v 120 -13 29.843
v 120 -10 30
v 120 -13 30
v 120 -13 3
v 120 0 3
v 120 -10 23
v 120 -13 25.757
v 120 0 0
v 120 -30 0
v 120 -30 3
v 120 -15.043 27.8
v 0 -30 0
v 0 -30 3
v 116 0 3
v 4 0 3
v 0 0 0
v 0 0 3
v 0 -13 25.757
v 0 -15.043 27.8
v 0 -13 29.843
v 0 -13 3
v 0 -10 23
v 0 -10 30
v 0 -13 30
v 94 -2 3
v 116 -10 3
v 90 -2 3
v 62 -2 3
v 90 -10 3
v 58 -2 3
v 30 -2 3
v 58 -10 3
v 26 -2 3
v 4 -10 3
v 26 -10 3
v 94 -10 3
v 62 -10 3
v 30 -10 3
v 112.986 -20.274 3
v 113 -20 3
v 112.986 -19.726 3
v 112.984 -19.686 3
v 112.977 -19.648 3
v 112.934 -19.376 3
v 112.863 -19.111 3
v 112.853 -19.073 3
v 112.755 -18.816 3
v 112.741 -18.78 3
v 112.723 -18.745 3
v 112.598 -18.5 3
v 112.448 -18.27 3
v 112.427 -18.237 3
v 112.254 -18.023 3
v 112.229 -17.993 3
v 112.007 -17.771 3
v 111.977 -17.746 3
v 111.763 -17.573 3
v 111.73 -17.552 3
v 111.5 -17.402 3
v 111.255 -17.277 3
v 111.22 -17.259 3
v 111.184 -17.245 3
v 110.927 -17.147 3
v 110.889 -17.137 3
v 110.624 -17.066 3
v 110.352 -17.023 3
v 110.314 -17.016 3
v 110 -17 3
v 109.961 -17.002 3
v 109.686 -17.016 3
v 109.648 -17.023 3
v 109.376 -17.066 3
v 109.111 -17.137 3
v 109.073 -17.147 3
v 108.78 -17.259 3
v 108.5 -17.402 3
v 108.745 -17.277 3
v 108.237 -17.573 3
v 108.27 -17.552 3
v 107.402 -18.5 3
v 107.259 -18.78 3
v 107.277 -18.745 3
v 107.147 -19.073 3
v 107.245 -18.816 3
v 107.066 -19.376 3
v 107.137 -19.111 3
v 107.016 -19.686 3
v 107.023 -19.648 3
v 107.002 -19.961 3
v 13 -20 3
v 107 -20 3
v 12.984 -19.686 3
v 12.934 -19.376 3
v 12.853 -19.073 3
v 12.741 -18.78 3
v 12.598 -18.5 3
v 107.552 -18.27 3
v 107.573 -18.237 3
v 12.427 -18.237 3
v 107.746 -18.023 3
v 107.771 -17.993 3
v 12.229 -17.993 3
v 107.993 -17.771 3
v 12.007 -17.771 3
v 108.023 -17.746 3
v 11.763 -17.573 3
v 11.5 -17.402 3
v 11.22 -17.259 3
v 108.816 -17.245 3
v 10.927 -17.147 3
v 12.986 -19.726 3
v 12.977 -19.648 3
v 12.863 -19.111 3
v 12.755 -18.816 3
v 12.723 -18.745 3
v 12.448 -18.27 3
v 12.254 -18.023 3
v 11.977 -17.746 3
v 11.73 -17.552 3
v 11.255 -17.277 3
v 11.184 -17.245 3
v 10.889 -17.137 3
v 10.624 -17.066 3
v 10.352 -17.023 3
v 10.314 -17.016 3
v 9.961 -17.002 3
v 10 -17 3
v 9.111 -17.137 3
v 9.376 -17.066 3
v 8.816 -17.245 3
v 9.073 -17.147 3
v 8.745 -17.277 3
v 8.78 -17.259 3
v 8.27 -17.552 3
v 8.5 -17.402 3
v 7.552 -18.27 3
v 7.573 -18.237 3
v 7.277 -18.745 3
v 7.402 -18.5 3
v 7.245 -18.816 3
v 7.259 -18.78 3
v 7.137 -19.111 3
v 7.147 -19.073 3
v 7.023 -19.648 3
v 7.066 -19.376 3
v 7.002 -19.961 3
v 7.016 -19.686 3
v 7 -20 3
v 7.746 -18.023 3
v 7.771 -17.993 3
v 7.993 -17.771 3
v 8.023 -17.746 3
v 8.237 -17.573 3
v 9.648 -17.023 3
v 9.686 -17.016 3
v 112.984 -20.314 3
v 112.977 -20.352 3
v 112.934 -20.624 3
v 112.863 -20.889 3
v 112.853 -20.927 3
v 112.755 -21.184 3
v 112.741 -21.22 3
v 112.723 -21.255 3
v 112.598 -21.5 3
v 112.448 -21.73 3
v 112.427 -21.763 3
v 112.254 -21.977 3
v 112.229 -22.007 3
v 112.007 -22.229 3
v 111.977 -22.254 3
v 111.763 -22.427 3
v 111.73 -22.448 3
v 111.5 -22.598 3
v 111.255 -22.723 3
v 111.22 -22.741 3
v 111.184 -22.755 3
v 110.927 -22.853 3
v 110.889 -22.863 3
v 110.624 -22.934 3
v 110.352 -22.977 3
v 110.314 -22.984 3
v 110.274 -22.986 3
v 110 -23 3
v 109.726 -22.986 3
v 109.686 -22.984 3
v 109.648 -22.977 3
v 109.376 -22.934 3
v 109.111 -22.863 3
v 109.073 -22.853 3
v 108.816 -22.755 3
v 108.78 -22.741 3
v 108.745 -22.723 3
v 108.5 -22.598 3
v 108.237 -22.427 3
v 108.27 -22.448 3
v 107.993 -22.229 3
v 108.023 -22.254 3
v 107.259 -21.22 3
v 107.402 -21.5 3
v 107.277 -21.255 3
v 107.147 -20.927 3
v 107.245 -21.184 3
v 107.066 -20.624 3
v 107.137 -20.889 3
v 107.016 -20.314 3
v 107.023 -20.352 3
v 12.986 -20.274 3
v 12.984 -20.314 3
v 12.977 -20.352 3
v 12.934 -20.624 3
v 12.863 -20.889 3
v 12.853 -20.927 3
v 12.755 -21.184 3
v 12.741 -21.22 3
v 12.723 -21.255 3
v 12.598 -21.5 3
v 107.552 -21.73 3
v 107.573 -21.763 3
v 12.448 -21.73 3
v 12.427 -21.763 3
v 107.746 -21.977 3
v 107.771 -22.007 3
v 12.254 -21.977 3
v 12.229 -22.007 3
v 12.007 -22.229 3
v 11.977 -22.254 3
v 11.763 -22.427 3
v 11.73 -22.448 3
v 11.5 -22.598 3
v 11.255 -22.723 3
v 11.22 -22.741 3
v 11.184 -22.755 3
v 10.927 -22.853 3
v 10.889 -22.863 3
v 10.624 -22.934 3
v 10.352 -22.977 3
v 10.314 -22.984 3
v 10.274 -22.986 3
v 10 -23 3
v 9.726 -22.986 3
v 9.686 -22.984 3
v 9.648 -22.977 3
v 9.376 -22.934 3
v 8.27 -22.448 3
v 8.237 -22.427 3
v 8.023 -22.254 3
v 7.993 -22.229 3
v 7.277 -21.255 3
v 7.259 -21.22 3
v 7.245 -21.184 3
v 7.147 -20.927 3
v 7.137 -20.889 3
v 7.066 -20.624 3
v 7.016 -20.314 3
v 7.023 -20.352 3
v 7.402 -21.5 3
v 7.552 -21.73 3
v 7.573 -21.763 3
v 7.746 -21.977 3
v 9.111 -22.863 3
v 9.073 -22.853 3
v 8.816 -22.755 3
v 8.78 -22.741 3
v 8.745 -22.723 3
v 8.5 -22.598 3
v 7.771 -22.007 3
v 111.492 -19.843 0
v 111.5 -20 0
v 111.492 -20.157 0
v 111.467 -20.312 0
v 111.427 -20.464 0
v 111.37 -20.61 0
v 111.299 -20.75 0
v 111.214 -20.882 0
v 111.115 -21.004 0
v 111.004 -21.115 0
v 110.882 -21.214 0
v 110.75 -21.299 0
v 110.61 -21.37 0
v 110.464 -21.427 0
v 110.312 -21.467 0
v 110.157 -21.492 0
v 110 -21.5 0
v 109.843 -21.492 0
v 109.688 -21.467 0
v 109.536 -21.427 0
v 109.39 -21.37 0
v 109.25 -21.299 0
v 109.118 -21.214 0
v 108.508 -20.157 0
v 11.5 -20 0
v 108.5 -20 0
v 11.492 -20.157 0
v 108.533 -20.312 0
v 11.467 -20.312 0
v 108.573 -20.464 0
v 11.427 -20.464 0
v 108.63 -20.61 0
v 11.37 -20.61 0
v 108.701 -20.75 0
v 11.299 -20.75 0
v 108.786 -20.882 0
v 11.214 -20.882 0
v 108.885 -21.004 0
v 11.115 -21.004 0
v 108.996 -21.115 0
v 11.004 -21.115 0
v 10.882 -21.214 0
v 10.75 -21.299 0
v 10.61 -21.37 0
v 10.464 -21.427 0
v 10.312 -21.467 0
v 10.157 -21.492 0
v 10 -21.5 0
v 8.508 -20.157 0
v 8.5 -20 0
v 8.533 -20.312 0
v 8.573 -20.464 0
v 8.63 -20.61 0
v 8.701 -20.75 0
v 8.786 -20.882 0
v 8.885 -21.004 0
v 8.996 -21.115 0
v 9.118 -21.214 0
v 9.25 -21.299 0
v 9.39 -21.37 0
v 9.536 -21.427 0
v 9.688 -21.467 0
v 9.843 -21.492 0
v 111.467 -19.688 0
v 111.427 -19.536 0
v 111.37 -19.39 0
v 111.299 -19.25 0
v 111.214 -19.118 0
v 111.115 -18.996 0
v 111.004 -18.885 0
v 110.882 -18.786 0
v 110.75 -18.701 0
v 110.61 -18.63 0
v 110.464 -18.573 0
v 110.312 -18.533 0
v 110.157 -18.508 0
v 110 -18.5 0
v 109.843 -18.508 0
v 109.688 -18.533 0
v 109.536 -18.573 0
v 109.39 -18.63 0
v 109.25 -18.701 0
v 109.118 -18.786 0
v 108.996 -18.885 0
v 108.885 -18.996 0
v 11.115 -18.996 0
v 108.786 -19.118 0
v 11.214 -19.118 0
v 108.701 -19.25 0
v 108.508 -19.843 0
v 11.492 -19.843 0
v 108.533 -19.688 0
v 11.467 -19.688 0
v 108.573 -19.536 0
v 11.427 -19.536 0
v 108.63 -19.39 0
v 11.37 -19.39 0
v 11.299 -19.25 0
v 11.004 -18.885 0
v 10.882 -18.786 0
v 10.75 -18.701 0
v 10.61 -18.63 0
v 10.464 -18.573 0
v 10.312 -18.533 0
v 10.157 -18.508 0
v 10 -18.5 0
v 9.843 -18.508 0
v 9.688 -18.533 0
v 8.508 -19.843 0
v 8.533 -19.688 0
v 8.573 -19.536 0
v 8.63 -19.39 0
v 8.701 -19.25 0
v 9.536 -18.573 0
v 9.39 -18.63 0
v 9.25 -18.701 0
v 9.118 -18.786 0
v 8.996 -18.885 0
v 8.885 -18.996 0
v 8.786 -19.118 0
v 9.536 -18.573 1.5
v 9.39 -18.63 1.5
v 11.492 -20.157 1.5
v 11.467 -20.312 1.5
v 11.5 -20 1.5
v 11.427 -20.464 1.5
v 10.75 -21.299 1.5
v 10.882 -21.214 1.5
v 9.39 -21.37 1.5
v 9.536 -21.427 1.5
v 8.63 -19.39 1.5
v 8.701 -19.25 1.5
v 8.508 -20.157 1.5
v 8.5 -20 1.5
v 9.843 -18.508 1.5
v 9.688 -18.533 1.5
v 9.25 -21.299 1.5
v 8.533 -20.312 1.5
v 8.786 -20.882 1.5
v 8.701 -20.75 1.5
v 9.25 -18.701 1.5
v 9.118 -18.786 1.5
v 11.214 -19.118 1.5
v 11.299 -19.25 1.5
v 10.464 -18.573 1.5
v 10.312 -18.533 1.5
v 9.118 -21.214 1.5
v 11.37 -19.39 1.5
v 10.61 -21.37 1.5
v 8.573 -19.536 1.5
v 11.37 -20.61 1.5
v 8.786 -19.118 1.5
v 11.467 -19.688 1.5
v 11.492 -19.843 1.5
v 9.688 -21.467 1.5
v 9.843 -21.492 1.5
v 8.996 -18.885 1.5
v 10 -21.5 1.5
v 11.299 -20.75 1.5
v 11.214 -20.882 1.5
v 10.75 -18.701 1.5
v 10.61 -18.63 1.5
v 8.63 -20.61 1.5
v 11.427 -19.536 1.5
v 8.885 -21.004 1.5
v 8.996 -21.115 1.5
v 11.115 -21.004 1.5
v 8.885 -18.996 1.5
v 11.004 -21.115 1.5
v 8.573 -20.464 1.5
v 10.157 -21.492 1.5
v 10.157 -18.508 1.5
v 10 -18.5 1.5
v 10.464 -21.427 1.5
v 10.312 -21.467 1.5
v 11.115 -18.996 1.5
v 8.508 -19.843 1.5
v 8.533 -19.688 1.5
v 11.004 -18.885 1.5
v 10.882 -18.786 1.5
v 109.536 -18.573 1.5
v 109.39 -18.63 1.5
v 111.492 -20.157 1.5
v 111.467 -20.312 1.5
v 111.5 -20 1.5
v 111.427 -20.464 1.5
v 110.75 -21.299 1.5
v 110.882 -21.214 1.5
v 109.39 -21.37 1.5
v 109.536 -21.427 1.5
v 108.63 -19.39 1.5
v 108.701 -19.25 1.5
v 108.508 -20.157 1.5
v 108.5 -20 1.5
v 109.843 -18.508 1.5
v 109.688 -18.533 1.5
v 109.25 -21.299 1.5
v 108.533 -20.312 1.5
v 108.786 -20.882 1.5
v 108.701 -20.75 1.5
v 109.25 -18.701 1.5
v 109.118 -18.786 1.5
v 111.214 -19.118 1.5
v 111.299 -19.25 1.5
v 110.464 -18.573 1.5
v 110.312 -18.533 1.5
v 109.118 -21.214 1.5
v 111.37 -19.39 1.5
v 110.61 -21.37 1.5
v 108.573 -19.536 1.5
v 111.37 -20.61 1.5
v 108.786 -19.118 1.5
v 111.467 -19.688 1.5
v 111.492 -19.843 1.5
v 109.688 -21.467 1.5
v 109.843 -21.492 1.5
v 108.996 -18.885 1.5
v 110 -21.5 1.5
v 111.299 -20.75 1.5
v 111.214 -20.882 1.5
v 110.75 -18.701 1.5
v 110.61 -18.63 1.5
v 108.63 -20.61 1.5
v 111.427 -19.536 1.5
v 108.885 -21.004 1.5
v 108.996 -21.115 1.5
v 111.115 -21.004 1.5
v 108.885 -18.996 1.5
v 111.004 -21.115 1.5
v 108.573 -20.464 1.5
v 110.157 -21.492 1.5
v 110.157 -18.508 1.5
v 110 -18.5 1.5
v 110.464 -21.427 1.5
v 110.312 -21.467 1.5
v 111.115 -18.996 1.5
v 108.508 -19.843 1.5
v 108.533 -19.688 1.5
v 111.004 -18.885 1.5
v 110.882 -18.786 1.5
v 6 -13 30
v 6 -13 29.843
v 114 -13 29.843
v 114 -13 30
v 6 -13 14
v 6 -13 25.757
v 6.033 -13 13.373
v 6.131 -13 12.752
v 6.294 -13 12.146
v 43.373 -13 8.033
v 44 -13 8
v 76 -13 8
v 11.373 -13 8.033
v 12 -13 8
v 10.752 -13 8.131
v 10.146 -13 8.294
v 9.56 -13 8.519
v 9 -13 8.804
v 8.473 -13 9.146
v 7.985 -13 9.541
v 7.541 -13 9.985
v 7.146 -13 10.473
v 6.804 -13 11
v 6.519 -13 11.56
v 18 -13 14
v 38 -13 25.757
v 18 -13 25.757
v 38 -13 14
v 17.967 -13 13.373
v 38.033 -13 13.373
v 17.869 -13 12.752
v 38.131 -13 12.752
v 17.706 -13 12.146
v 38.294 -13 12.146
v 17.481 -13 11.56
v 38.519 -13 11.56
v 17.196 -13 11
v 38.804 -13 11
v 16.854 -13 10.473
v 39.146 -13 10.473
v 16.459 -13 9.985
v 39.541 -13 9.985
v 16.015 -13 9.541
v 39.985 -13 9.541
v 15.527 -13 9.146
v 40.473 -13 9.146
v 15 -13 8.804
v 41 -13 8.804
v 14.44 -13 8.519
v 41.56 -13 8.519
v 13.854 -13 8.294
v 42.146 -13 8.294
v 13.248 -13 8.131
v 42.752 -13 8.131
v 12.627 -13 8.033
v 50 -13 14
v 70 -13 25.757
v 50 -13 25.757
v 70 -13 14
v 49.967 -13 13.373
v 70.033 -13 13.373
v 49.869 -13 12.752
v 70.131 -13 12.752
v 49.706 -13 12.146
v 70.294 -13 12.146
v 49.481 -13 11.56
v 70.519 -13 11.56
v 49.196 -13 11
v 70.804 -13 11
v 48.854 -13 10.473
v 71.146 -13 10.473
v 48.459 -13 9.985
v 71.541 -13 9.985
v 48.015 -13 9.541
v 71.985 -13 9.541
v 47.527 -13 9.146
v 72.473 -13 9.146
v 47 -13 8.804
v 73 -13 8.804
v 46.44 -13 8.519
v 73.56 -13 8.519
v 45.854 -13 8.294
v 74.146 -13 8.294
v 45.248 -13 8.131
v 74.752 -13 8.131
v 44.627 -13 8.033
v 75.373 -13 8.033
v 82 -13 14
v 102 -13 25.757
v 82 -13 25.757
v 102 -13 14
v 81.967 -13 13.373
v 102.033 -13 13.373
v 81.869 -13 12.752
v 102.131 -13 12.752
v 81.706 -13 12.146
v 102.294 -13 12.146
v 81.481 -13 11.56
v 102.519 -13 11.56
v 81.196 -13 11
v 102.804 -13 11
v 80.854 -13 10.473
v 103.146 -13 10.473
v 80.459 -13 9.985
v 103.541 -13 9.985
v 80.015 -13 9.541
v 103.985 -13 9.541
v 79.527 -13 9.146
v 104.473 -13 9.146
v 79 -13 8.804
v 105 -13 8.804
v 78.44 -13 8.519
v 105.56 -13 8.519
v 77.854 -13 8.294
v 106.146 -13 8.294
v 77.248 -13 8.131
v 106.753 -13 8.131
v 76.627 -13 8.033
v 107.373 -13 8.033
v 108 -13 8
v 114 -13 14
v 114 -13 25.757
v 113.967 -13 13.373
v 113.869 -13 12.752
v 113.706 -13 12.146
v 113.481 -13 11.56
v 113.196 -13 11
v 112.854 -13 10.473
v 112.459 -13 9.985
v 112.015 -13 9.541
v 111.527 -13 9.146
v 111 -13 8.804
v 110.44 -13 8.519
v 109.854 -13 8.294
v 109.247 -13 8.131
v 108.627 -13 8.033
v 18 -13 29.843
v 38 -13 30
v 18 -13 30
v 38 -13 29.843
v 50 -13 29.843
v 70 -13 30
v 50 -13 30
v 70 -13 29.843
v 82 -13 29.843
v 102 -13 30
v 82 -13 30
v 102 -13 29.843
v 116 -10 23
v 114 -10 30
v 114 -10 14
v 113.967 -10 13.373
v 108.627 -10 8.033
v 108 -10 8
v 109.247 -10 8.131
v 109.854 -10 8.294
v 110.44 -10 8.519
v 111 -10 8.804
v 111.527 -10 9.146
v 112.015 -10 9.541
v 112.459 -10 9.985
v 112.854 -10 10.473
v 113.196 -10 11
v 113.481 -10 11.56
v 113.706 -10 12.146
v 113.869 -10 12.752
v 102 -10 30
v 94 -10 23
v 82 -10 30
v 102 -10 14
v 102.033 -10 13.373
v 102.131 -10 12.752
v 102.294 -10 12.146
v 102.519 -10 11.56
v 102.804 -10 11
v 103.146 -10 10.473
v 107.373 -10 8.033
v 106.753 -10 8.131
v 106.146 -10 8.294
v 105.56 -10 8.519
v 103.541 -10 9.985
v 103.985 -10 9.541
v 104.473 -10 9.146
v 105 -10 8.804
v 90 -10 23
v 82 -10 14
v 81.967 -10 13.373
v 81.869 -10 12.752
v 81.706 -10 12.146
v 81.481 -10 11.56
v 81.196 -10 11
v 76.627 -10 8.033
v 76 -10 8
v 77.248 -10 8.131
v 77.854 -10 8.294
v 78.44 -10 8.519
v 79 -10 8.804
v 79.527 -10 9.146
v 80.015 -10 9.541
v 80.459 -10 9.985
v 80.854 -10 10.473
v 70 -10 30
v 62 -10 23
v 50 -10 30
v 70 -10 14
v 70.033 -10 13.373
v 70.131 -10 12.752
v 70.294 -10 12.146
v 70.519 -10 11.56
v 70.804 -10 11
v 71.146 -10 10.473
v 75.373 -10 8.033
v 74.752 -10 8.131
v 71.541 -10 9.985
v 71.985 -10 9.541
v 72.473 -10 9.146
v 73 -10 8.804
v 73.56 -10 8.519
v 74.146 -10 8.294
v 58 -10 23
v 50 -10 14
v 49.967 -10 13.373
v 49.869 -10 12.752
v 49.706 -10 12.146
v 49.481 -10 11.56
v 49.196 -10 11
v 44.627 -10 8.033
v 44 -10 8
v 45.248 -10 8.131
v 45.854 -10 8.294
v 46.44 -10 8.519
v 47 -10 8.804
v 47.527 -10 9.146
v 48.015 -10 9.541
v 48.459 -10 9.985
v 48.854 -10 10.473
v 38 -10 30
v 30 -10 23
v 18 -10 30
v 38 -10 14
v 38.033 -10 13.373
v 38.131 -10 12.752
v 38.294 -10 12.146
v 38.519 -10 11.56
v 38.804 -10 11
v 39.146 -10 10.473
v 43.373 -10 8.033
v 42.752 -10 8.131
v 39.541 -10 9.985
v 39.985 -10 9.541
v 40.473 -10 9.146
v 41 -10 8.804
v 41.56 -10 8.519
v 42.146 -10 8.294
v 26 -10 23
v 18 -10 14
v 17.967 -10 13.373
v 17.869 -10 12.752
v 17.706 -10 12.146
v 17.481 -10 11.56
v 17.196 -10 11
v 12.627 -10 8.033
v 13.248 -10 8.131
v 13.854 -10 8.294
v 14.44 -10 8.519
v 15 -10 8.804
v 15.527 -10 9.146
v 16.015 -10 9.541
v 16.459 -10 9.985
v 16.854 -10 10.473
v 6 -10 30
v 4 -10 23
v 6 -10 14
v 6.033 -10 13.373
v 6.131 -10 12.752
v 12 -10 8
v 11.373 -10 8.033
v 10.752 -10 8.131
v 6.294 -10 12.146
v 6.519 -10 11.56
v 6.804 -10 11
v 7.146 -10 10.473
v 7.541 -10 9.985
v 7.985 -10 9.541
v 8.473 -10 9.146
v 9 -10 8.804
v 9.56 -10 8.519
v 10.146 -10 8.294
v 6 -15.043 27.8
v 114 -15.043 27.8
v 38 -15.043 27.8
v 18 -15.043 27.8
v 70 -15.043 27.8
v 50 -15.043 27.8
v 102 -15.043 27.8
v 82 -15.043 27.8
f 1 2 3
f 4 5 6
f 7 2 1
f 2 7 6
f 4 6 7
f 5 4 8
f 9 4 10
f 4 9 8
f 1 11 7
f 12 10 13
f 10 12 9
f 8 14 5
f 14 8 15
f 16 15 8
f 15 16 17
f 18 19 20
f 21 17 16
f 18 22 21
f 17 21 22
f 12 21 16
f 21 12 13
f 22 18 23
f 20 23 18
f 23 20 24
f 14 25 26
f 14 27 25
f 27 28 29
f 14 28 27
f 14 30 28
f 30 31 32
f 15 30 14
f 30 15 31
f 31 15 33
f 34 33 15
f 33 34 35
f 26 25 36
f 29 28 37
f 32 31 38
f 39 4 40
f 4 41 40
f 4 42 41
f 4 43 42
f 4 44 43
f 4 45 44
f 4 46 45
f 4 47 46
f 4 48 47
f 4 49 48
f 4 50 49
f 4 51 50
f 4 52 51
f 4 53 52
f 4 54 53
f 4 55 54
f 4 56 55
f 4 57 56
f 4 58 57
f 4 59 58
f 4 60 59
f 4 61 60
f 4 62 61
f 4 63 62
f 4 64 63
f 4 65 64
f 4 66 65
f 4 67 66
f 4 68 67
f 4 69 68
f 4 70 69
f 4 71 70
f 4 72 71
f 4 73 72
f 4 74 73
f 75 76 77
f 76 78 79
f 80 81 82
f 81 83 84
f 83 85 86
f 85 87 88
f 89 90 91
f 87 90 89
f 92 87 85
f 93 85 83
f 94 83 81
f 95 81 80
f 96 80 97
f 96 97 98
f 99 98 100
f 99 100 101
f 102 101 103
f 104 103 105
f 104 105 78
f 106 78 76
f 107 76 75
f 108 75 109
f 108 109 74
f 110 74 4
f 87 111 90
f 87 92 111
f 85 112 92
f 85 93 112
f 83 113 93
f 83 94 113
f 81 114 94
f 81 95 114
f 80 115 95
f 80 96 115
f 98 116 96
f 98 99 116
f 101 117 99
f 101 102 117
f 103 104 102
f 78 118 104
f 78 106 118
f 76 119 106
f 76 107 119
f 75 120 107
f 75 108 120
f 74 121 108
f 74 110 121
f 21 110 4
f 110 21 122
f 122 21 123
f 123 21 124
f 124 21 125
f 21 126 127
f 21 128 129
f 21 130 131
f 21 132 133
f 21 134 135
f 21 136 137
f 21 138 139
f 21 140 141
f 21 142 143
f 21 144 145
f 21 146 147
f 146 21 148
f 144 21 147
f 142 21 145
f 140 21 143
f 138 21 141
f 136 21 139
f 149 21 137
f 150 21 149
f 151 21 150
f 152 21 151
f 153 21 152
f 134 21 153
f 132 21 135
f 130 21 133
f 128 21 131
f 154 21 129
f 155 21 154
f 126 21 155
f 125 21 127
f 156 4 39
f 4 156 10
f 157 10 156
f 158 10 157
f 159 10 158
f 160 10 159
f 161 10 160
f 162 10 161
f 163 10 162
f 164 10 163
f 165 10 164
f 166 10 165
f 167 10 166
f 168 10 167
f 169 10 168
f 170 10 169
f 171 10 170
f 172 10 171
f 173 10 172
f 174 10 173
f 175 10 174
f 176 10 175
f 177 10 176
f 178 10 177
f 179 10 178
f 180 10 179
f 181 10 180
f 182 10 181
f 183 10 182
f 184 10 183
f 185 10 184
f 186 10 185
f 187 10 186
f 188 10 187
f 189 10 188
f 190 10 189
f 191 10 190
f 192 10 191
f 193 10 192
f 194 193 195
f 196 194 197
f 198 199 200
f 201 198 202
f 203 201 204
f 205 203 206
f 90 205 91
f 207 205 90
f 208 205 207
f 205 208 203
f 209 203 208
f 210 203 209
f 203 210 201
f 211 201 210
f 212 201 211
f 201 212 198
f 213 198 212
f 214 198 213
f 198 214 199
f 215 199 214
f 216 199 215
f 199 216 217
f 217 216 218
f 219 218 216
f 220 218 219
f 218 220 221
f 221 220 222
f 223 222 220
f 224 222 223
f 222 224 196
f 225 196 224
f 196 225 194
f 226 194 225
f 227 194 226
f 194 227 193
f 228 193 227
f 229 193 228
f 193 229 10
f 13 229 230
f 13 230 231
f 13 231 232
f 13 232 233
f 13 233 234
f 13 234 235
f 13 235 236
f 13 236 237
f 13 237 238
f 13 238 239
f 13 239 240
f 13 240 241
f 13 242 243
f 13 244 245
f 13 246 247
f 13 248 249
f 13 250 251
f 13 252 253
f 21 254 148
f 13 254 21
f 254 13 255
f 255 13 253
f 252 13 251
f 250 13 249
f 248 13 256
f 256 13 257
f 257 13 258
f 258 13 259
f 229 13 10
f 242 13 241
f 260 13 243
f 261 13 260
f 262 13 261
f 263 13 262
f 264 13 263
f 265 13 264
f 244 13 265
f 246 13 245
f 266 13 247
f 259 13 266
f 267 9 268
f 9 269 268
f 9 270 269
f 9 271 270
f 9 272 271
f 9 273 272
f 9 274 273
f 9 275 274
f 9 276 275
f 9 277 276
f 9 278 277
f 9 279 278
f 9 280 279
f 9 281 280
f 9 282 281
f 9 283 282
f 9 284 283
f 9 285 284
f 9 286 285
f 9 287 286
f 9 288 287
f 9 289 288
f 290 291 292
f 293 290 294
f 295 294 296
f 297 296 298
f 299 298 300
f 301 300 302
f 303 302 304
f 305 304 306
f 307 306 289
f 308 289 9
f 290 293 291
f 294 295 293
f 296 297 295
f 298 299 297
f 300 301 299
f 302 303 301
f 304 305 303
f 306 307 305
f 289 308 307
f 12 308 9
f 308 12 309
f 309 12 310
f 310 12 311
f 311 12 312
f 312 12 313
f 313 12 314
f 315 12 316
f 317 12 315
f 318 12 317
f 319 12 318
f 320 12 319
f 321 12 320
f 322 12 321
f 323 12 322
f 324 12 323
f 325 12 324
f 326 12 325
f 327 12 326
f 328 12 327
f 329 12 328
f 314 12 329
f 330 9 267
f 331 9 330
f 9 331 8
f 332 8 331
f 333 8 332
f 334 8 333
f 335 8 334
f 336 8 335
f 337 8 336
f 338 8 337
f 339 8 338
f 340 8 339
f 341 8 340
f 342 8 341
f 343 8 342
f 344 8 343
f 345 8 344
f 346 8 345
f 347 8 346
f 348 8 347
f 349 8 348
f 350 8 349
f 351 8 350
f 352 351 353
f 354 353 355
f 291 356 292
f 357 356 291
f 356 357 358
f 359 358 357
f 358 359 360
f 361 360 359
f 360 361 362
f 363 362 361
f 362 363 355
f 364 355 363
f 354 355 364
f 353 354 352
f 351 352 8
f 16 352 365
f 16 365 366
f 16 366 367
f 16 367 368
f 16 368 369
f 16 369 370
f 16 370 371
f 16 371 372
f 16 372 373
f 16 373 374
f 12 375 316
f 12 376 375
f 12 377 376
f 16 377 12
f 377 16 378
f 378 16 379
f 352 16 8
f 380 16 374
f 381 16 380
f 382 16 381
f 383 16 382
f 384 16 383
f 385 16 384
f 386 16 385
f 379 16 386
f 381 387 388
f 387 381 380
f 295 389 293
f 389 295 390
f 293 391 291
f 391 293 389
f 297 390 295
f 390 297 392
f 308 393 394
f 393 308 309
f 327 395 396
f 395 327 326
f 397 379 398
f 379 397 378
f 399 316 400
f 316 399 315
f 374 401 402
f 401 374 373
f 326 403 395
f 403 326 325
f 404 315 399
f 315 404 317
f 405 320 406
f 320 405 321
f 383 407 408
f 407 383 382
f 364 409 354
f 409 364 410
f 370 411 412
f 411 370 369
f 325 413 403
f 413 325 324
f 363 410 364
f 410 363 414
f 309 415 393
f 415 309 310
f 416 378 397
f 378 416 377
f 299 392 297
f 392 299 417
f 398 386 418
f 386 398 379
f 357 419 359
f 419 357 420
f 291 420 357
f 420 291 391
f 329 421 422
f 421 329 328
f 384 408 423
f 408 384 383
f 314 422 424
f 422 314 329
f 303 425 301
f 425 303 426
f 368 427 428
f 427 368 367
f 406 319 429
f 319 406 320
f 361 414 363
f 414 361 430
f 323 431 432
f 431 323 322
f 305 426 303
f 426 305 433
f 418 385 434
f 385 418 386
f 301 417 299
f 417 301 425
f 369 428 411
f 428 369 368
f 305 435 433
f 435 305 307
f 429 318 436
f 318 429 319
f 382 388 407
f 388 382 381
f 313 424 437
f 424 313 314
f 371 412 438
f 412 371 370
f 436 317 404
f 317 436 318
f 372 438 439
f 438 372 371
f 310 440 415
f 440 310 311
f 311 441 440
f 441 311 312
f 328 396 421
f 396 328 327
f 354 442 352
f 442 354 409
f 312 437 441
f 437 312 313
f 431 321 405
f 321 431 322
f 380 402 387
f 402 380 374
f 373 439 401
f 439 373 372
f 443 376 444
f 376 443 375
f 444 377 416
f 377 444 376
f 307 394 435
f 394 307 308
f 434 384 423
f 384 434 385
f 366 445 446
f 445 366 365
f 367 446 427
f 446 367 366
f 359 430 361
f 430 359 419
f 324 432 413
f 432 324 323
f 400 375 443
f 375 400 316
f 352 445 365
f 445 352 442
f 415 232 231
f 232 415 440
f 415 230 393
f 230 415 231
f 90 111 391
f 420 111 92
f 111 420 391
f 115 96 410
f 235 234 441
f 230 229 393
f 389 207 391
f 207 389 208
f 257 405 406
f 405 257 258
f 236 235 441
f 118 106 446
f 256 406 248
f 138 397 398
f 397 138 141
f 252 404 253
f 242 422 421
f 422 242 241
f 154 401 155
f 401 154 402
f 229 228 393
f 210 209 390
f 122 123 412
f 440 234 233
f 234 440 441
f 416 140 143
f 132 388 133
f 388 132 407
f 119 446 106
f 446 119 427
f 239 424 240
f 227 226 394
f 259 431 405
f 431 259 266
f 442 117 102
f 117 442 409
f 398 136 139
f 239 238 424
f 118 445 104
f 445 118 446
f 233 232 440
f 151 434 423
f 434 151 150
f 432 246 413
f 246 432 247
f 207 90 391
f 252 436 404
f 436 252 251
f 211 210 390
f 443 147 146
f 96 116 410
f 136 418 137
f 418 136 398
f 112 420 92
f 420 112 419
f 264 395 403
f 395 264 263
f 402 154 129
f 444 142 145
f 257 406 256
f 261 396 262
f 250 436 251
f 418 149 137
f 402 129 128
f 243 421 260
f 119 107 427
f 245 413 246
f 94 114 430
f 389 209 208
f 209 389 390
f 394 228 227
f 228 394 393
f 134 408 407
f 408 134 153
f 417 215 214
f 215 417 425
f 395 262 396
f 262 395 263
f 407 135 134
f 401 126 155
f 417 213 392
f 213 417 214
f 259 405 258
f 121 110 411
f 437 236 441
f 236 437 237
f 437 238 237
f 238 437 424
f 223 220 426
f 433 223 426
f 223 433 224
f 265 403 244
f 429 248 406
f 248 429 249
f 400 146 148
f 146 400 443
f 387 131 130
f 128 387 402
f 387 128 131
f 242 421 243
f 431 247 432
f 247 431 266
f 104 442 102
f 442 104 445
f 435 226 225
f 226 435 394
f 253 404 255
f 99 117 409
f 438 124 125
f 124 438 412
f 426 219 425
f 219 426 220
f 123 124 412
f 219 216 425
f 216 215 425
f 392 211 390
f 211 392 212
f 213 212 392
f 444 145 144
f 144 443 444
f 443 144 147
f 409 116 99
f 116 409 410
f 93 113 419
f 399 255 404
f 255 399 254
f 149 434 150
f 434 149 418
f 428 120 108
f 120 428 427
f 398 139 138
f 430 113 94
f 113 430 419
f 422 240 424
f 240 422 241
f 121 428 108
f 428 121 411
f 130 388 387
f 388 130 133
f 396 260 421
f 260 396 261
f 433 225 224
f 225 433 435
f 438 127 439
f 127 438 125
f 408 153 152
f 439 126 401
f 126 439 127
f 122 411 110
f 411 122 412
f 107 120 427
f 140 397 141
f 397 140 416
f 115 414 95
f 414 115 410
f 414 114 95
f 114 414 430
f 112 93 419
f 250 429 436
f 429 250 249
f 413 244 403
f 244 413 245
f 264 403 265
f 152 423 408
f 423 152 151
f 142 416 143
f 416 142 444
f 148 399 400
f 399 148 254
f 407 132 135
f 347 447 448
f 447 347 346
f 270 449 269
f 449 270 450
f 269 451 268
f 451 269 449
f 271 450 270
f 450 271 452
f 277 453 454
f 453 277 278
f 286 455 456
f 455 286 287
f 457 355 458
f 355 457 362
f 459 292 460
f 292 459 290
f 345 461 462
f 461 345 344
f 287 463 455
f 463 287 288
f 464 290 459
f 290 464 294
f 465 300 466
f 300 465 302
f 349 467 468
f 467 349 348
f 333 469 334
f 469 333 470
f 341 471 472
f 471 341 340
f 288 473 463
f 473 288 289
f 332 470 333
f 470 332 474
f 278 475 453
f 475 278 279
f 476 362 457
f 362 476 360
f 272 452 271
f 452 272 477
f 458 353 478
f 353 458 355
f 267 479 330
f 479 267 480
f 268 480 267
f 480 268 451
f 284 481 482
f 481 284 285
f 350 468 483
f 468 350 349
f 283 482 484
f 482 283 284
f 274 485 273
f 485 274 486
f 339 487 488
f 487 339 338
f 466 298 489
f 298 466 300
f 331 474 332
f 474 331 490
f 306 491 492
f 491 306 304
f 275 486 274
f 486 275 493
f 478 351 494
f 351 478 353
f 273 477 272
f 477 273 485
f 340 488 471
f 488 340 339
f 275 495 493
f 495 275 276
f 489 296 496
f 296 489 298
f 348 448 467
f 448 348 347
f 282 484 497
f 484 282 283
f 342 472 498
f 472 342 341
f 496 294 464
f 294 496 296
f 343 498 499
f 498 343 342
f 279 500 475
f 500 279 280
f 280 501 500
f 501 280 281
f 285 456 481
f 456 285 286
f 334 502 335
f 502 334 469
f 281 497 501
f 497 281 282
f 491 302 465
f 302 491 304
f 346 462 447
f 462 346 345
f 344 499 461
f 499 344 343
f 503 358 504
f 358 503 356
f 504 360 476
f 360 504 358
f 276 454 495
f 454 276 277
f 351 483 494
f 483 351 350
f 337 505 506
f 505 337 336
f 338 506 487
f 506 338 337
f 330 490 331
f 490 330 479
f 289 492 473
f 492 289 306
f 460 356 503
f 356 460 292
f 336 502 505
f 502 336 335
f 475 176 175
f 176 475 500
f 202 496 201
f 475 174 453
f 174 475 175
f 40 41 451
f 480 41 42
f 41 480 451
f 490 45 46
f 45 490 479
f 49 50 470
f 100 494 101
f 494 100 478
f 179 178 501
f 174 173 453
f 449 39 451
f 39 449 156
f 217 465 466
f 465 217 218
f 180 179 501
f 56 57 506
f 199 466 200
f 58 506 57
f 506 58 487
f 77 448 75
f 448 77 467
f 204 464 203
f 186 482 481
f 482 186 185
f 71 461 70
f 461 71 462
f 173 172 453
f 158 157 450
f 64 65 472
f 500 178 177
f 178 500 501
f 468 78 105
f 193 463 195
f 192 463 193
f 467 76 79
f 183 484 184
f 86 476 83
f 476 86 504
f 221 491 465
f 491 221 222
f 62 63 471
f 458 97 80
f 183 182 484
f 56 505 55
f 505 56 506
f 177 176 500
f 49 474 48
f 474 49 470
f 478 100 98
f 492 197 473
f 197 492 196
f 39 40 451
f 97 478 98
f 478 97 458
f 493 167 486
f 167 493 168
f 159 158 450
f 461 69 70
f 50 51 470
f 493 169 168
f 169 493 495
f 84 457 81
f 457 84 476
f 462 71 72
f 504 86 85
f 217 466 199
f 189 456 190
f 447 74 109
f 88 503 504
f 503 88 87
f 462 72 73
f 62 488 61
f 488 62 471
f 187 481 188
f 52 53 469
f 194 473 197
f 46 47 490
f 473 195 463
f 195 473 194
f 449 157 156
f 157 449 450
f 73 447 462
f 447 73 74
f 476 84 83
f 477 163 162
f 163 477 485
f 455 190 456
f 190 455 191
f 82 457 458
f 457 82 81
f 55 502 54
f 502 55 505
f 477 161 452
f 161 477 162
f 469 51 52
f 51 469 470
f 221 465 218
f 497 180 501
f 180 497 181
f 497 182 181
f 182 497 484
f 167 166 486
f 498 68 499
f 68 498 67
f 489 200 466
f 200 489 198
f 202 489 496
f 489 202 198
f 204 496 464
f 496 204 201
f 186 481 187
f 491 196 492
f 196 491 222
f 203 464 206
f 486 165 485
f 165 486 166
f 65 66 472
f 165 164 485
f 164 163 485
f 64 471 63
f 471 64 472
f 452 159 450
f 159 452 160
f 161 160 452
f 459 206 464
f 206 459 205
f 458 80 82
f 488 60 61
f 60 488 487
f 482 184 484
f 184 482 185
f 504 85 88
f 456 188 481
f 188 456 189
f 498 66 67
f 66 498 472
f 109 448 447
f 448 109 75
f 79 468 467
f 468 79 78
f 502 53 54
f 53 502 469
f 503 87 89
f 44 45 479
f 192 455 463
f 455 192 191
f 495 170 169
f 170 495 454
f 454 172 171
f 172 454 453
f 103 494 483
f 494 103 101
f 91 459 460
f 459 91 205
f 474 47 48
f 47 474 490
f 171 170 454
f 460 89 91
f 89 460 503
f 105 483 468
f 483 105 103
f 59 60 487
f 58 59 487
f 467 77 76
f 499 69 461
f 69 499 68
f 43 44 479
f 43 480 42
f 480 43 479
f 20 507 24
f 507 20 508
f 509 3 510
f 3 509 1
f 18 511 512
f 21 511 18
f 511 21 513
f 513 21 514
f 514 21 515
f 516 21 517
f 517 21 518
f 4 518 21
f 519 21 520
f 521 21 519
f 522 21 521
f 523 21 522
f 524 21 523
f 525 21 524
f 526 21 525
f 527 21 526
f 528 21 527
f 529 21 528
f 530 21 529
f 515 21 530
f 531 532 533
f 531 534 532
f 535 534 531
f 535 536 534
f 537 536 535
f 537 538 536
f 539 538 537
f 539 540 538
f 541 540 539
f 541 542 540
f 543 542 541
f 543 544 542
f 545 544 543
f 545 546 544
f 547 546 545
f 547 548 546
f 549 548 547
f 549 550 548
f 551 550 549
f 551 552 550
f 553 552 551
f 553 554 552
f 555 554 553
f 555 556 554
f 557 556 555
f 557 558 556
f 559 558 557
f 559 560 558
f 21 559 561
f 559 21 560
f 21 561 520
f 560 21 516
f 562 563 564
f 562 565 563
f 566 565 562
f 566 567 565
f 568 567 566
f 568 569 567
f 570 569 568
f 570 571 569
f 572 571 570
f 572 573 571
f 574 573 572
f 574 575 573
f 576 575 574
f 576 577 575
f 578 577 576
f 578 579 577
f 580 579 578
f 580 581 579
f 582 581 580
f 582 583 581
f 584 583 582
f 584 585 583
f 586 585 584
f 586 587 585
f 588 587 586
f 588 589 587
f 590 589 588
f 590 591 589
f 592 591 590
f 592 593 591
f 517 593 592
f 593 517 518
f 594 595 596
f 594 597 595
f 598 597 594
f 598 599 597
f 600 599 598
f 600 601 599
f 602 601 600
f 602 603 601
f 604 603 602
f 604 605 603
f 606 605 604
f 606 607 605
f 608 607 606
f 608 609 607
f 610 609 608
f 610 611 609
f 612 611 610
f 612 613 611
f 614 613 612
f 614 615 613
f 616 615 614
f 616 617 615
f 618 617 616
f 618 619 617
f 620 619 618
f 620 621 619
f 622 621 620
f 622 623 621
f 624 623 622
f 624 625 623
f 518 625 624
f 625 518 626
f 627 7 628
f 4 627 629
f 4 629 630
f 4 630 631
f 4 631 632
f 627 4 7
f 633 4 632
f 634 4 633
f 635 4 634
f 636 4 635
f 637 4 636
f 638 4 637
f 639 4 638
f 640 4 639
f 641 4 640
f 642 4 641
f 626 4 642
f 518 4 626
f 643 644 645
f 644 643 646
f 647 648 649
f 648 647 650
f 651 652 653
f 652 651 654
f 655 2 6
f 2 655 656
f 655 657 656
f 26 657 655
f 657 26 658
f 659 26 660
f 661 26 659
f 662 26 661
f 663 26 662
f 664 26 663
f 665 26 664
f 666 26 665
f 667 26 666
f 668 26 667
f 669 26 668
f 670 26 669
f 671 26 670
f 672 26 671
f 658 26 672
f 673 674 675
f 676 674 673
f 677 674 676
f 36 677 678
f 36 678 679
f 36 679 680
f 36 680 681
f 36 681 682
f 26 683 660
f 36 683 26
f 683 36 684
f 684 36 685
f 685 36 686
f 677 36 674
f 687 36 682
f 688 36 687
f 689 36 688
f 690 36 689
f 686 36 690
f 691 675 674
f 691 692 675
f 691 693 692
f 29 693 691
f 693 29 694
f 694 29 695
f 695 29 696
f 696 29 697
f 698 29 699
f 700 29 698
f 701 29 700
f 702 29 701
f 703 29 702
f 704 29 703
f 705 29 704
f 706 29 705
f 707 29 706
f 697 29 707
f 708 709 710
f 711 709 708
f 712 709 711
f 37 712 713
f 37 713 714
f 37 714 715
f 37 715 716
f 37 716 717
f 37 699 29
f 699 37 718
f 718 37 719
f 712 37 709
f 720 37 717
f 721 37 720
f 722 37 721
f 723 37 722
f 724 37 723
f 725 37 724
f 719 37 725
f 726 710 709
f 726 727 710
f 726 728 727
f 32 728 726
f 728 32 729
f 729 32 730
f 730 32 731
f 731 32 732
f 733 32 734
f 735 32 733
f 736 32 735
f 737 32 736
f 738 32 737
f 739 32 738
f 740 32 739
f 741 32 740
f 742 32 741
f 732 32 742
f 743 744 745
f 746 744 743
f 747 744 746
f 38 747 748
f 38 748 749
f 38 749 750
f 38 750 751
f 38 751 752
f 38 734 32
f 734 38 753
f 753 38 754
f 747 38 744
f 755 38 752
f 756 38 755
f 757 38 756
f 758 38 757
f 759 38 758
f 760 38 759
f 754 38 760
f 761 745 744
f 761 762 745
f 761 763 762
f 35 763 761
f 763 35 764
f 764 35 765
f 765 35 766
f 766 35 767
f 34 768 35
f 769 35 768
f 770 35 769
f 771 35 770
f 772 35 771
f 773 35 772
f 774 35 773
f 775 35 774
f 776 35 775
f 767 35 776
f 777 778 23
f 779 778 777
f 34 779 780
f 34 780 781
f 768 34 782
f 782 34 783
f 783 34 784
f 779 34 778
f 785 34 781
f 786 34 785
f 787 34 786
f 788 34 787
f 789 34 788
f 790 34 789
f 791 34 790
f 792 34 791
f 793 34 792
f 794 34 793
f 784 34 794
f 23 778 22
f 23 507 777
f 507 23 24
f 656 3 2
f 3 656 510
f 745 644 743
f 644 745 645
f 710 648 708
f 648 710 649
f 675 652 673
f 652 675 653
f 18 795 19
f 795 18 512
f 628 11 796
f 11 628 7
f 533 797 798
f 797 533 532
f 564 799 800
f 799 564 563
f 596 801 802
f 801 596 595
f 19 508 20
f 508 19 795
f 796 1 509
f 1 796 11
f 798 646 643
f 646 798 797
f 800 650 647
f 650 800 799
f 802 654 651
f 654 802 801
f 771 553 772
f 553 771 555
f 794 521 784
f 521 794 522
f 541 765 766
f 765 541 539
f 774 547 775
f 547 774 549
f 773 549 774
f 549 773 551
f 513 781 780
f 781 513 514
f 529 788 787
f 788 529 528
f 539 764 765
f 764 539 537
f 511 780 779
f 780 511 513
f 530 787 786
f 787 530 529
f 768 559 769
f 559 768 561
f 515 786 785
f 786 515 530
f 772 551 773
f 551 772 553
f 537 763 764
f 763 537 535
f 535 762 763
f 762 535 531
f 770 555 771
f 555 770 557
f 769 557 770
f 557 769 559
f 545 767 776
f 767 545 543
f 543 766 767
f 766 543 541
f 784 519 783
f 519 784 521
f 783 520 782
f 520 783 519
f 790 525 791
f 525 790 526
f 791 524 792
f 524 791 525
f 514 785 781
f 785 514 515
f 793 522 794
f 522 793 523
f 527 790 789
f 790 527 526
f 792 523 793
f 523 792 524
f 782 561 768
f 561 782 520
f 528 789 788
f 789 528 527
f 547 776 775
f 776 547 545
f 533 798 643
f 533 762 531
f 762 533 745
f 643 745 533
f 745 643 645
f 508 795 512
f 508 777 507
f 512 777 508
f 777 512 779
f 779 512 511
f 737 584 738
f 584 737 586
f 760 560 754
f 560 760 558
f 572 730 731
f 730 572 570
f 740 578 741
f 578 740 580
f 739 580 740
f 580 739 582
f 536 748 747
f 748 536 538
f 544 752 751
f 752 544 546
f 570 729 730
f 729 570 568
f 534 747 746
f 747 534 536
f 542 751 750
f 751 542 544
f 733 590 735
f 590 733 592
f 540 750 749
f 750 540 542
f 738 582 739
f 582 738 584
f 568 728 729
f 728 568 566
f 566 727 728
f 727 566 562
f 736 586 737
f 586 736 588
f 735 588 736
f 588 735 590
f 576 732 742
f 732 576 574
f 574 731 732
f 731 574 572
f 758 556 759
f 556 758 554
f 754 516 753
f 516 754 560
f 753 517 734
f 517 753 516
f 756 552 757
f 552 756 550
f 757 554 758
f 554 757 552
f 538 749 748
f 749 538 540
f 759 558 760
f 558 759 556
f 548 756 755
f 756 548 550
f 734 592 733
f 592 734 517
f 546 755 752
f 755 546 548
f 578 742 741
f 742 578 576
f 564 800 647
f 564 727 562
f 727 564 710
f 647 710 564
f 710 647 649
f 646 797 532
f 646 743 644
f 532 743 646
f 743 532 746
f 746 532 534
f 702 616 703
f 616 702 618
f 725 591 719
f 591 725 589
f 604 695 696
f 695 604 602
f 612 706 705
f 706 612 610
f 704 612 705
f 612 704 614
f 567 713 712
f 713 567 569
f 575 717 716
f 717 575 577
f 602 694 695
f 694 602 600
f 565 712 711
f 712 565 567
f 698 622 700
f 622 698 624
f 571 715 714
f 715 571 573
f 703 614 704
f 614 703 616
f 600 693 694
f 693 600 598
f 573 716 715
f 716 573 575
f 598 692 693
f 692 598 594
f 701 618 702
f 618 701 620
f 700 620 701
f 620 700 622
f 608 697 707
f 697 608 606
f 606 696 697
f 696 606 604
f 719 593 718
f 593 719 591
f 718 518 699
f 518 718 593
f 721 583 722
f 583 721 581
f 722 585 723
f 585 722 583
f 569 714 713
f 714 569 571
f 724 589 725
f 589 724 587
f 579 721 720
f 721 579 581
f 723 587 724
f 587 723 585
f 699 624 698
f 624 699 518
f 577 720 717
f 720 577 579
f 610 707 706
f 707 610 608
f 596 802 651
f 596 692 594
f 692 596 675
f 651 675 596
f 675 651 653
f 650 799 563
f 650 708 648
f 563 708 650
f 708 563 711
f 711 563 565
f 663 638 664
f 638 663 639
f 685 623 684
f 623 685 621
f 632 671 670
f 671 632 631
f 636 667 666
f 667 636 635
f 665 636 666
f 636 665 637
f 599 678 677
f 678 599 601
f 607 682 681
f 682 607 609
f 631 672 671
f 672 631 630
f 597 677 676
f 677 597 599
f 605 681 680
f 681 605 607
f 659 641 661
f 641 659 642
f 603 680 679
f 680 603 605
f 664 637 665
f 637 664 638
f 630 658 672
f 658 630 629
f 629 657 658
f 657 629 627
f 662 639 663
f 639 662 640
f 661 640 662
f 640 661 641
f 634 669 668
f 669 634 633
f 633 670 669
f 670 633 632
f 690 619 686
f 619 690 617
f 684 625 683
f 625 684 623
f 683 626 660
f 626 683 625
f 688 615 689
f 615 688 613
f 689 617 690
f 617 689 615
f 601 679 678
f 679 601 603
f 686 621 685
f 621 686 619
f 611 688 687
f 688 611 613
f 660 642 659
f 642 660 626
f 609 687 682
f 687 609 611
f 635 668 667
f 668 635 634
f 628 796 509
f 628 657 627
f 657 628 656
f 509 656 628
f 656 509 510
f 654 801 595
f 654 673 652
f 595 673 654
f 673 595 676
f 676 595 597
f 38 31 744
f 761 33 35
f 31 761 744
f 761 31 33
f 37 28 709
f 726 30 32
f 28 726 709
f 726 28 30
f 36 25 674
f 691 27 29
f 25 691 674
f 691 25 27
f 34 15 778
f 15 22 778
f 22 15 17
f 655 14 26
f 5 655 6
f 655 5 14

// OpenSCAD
$fn = 60;

rotate([90, 0, 0]) {
 difference () {
   cube([120, 3, 30]);
   translate([10, 4, 20]) rotate([90, 0, 0]) cylinder(5, r=1.5);
   translate([10, 1.5, 20]) rotate([-90, 0, 0]) cylinder(2, r1=1.5, r2=3.5);
   translate([110, 4, 20]) rotate([90, 0, 0]) cylinder(5, r=1.5);
   translate([110, 1.5, 20]) rotate([-90, 0, 0]) cylinder(2, r1=1.5, r2=3.5);
 

 
   }

difference () {
    union () {
      translate([0, 0, 10]) cube([120, 30, 3]);
      translate([0, 27.8, 10.8]) rotate([45, 0, 0]) cube([120, 3, 3]);
    }

  
  translate([12, 14, 9]) cylinder(5, r=6);
  translate([6, 14, 9]) cube([12, 16, 10]);

  translate([44, 14, 9]) cylinder(5, r=6);
  translate([38,  14, 9]) cube([12, 16, 10]);

  translate([76, 14, 9]) cylinder(5, r=6);
  translate([70, 14, 9]) cube([12, 16, 10]);

  translate([108, 14, 9]) cylinder(5, r=6);
  translate([102, 14, 9]) cube([12, 16, 10]);

}

translate([30, 3, 2]) rotate([0, -90, 0]) linear_extrude(height=4) {
  polygon([[0, 0], [8, 0], [8, 20] ]);
}

translate([62, 3, 2]) rotate([0, -90, 0]) linear_extrude(height=4) {
  polygon([[0, 0], [8, 0], [8, 20] ]);
}
translate([94, 3, 2]) rotate([0, -90, 0]) linear_extrude(height=4) {
  polygon([[0, 0], [8, 0], [8, 20] ]);
}


translate([4, 3, 0]) rotate([0, -90, 0]) {
linear_extrude(height=4) {
polygon([[0, 0], [10, 0], [10, 20]]);
}
}

translate([120, 3, 0]) rotate([0, -90, 0]) {
linear_extrude(height=4) {
polygon([[0, 0], [10, 0], [10, 20]]);
}
}

}
